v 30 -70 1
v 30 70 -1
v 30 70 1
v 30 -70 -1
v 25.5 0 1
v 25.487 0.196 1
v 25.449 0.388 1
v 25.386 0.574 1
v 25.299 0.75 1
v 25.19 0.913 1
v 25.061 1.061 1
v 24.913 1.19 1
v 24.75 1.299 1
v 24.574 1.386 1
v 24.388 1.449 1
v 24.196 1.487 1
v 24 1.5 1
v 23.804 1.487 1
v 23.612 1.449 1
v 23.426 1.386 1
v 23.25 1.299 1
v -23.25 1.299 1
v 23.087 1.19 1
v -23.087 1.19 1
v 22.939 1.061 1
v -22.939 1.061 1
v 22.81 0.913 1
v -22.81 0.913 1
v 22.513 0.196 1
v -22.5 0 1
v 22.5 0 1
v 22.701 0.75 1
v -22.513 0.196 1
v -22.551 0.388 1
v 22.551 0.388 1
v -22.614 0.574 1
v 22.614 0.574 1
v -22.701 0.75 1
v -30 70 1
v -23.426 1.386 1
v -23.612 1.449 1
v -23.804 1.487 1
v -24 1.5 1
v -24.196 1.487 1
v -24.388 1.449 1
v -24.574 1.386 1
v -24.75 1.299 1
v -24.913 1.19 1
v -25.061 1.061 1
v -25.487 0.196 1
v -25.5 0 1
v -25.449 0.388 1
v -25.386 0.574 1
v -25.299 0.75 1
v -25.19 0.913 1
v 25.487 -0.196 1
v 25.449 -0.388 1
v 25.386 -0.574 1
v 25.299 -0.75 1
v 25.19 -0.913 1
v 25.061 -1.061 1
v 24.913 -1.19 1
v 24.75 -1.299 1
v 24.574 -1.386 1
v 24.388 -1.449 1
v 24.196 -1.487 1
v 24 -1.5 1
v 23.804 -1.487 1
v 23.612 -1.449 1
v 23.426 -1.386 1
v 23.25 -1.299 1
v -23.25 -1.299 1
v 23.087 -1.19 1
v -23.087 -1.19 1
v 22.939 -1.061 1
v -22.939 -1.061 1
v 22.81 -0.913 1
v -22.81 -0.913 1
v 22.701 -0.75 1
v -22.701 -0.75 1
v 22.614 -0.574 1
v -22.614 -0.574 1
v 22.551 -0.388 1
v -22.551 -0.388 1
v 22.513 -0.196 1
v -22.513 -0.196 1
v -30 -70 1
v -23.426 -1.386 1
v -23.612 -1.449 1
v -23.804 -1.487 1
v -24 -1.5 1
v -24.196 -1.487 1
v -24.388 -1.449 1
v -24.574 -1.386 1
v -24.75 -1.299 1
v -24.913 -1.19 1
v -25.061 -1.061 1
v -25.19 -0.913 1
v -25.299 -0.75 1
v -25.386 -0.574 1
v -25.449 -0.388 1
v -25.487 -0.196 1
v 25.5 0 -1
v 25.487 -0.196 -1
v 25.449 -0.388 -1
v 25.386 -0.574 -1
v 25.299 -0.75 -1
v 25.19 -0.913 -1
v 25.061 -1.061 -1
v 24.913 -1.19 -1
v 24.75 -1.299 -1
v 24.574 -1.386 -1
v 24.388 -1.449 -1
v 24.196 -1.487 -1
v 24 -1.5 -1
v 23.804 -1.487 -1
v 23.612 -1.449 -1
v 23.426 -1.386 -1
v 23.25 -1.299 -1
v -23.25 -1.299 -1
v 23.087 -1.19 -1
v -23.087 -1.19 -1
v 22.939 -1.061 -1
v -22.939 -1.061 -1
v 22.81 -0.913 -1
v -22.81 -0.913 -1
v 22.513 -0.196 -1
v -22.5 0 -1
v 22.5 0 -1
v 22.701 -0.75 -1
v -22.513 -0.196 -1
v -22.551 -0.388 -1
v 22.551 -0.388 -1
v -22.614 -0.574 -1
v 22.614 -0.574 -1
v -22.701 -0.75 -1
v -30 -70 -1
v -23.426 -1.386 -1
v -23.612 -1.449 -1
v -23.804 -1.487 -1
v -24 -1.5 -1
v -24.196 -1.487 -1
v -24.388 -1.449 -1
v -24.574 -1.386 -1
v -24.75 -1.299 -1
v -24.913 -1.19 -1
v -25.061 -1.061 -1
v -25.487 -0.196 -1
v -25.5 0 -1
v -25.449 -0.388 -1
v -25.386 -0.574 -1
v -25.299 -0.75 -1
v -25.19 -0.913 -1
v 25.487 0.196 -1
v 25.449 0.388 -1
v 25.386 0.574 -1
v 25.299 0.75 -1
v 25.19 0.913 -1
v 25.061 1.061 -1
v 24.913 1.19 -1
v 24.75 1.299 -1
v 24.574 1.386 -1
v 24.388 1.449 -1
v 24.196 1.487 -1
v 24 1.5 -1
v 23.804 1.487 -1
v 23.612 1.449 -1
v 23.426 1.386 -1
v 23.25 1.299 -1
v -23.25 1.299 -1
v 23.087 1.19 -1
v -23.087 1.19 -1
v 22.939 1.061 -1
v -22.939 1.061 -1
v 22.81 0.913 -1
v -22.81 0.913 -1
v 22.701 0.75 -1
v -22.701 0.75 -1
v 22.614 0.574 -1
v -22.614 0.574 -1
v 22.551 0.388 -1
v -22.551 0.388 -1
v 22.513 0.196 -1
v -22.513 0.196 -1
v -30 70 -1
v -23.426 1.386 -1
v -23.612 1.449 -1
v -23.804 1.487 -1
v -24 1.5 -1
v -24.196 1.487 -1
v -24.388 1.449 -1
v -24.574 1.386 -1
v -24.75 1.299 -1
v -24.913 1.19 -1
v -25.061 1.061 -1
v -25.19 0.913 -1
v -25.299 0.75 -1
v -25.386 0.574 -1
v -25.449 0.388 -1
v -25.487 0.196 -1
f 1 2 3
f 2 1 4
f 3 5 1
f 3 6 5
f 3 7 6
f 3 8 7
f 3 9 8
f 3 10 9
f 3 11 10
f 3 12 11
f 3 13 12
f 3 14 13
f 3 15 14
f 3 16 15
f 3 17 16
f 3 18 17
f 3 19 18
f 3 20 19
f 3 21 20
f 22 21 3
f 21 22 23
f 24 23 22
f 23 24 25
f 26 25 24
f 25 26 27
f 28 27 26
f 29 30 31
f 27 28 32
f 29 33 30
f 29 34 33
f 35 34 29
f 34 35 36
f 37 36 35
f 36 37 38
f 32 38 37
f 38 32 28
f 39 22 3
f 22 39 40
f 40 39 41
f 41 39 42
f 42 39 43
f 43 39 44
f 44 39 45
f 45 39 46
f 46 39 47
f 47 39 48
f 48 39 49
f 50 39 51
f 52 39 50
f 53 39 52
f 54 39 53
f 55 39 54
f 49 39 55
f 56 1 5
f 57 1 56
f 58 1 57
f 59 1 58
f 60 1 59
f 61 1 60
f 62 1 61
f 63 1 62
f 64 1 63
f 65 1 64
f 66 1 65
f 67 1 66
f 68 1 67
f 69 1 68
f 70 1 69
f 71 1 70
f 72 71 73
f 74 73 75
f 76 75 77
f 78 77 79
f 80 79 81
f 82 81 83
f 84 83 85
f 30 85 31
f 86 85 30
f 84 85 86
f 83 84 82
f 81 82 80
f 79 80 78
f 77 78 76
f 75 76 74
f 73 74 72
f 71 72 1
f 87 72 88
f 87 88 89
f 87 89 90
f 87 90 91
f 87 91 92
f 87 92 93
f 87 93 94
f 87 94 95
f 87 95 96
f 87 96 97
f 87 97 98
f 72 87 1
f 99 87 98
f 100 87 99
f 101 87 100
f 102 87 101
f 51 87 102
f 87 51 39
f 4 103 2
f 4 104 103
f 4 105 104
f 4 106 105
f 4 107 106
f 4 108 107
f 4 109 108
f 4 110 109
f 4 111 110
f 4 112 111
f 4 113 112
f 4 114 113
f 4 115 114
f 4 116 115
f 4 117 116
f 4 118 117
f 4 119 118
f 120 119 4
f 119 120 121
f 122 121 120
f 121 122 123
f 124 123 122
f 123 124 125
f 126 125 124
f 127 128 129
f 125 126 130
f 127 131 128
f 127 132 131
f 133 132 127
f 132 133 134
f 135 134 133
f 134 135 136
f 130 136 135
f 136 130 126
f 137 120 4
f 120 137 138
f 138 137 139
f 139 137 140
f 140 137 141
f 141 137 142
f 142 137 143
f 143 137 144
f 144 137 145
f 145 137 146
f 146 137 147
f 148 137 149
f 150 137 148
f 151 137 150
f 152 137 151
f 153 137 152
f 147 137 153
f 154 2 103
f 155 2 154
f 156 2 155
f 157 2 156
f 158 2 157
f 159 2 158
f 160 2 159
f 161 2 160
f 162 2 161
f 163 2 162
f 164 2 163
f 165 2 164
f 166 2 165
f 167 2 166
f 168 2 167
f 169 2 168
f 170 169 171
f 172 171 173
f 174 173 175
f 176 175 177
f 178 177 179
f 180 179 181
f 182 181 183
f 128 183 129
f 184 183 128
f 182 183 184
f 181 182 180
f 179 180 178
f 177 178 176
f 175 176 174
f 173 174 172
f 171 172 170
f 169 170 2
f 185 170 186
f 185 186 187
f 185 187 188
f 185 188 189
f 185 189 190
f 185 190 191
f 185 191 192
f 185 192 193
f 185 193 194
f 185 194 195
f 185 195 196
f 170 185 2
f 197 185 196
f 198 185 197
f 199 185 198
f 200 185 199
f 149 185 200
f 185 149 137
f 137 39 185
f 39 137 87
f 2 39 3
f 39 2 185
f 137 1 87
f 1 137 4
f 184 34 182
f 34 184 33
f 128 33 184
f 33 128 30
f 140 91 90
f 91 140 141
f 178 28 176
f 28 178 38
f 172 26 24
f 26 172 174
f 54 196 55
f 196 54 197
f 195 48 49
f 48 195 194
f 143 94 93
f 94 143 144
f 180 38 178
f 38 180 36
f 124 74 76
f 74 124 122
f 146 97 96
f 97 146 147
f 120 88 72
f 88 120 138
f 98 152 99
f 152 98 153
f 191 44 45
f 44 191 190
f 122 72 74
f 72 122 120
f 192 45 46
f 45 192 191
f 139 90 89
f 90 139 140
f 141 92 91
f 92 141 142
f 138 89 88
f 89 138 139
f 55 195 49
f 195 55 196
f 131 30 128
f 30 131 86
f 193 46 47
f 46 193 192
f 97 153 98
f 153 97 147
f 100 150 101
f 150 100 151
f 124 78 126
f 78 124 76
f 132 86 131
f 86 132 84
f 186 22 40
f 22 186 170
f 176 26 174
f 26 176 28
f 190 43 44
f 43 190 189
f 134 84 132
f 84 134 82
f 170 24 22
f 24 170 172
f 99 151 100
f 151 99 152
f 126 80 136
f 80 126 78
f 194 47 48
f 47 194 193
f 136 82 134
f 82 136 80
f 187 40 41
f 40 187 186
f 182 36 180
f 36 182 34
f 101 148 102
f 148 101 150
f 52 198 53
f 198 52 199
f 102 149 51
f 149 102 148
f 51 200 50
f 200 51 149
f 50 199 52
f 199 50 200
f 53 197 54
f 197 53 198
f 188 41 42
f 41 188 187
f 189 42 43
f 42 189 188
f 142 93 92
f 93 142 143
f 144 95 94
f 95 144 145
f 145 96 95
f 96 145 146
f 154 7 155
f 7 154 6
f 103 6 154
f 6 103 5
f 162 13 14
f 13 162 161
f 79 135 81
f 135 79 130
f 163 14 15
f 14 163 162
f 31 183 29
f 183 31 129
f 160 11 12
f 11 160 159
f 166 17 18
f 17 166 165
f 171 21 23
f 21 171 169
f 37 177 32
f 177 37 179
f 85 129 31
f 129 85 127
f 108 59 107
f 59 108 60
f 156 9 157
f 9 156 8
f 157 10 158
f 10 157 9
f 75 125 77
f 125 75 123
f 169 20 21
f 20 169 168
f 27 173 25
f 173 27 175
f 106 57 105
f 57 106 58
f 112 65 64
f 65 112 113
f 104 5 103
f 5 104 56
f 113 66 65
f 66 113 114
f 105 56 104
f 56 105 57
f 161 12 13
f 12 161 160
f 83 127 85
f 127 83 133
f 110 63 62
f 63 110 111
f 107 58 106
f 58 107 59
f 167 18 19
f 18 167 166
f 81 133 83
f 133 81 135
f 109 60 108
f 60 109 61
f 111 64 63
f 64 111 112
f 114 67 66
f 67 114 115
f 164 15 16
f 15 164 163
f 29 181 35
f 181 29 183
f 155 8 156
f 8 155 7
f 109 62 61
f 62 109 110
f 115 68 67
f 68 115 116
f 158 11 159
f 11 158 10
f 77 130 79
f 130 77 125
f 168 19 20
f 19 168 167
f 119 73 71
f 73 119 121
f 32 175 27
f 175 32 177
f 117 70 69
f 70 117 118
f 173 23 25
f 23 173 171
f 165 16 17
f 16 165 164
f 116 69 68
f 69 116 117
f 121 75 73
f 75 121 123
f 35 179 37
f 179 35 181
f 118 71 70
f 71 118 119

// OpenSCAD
// ========================================
// a 60 x 140 x 2 mm plate with two 3 mm holes
// NeuroCAD canonical IR; dimensions are millimetres
// ========================================
$fn = 48;

difference() {
  cube(size=[60, 140, 2], center=true);
  translate([-24, 0, 0]) {
    cylinder(r=1.5, h=4, center=true);
  }
  translate([24, 0, 0]) {
    cylinder(r=1.5, h=4, center=true);
  }
}
